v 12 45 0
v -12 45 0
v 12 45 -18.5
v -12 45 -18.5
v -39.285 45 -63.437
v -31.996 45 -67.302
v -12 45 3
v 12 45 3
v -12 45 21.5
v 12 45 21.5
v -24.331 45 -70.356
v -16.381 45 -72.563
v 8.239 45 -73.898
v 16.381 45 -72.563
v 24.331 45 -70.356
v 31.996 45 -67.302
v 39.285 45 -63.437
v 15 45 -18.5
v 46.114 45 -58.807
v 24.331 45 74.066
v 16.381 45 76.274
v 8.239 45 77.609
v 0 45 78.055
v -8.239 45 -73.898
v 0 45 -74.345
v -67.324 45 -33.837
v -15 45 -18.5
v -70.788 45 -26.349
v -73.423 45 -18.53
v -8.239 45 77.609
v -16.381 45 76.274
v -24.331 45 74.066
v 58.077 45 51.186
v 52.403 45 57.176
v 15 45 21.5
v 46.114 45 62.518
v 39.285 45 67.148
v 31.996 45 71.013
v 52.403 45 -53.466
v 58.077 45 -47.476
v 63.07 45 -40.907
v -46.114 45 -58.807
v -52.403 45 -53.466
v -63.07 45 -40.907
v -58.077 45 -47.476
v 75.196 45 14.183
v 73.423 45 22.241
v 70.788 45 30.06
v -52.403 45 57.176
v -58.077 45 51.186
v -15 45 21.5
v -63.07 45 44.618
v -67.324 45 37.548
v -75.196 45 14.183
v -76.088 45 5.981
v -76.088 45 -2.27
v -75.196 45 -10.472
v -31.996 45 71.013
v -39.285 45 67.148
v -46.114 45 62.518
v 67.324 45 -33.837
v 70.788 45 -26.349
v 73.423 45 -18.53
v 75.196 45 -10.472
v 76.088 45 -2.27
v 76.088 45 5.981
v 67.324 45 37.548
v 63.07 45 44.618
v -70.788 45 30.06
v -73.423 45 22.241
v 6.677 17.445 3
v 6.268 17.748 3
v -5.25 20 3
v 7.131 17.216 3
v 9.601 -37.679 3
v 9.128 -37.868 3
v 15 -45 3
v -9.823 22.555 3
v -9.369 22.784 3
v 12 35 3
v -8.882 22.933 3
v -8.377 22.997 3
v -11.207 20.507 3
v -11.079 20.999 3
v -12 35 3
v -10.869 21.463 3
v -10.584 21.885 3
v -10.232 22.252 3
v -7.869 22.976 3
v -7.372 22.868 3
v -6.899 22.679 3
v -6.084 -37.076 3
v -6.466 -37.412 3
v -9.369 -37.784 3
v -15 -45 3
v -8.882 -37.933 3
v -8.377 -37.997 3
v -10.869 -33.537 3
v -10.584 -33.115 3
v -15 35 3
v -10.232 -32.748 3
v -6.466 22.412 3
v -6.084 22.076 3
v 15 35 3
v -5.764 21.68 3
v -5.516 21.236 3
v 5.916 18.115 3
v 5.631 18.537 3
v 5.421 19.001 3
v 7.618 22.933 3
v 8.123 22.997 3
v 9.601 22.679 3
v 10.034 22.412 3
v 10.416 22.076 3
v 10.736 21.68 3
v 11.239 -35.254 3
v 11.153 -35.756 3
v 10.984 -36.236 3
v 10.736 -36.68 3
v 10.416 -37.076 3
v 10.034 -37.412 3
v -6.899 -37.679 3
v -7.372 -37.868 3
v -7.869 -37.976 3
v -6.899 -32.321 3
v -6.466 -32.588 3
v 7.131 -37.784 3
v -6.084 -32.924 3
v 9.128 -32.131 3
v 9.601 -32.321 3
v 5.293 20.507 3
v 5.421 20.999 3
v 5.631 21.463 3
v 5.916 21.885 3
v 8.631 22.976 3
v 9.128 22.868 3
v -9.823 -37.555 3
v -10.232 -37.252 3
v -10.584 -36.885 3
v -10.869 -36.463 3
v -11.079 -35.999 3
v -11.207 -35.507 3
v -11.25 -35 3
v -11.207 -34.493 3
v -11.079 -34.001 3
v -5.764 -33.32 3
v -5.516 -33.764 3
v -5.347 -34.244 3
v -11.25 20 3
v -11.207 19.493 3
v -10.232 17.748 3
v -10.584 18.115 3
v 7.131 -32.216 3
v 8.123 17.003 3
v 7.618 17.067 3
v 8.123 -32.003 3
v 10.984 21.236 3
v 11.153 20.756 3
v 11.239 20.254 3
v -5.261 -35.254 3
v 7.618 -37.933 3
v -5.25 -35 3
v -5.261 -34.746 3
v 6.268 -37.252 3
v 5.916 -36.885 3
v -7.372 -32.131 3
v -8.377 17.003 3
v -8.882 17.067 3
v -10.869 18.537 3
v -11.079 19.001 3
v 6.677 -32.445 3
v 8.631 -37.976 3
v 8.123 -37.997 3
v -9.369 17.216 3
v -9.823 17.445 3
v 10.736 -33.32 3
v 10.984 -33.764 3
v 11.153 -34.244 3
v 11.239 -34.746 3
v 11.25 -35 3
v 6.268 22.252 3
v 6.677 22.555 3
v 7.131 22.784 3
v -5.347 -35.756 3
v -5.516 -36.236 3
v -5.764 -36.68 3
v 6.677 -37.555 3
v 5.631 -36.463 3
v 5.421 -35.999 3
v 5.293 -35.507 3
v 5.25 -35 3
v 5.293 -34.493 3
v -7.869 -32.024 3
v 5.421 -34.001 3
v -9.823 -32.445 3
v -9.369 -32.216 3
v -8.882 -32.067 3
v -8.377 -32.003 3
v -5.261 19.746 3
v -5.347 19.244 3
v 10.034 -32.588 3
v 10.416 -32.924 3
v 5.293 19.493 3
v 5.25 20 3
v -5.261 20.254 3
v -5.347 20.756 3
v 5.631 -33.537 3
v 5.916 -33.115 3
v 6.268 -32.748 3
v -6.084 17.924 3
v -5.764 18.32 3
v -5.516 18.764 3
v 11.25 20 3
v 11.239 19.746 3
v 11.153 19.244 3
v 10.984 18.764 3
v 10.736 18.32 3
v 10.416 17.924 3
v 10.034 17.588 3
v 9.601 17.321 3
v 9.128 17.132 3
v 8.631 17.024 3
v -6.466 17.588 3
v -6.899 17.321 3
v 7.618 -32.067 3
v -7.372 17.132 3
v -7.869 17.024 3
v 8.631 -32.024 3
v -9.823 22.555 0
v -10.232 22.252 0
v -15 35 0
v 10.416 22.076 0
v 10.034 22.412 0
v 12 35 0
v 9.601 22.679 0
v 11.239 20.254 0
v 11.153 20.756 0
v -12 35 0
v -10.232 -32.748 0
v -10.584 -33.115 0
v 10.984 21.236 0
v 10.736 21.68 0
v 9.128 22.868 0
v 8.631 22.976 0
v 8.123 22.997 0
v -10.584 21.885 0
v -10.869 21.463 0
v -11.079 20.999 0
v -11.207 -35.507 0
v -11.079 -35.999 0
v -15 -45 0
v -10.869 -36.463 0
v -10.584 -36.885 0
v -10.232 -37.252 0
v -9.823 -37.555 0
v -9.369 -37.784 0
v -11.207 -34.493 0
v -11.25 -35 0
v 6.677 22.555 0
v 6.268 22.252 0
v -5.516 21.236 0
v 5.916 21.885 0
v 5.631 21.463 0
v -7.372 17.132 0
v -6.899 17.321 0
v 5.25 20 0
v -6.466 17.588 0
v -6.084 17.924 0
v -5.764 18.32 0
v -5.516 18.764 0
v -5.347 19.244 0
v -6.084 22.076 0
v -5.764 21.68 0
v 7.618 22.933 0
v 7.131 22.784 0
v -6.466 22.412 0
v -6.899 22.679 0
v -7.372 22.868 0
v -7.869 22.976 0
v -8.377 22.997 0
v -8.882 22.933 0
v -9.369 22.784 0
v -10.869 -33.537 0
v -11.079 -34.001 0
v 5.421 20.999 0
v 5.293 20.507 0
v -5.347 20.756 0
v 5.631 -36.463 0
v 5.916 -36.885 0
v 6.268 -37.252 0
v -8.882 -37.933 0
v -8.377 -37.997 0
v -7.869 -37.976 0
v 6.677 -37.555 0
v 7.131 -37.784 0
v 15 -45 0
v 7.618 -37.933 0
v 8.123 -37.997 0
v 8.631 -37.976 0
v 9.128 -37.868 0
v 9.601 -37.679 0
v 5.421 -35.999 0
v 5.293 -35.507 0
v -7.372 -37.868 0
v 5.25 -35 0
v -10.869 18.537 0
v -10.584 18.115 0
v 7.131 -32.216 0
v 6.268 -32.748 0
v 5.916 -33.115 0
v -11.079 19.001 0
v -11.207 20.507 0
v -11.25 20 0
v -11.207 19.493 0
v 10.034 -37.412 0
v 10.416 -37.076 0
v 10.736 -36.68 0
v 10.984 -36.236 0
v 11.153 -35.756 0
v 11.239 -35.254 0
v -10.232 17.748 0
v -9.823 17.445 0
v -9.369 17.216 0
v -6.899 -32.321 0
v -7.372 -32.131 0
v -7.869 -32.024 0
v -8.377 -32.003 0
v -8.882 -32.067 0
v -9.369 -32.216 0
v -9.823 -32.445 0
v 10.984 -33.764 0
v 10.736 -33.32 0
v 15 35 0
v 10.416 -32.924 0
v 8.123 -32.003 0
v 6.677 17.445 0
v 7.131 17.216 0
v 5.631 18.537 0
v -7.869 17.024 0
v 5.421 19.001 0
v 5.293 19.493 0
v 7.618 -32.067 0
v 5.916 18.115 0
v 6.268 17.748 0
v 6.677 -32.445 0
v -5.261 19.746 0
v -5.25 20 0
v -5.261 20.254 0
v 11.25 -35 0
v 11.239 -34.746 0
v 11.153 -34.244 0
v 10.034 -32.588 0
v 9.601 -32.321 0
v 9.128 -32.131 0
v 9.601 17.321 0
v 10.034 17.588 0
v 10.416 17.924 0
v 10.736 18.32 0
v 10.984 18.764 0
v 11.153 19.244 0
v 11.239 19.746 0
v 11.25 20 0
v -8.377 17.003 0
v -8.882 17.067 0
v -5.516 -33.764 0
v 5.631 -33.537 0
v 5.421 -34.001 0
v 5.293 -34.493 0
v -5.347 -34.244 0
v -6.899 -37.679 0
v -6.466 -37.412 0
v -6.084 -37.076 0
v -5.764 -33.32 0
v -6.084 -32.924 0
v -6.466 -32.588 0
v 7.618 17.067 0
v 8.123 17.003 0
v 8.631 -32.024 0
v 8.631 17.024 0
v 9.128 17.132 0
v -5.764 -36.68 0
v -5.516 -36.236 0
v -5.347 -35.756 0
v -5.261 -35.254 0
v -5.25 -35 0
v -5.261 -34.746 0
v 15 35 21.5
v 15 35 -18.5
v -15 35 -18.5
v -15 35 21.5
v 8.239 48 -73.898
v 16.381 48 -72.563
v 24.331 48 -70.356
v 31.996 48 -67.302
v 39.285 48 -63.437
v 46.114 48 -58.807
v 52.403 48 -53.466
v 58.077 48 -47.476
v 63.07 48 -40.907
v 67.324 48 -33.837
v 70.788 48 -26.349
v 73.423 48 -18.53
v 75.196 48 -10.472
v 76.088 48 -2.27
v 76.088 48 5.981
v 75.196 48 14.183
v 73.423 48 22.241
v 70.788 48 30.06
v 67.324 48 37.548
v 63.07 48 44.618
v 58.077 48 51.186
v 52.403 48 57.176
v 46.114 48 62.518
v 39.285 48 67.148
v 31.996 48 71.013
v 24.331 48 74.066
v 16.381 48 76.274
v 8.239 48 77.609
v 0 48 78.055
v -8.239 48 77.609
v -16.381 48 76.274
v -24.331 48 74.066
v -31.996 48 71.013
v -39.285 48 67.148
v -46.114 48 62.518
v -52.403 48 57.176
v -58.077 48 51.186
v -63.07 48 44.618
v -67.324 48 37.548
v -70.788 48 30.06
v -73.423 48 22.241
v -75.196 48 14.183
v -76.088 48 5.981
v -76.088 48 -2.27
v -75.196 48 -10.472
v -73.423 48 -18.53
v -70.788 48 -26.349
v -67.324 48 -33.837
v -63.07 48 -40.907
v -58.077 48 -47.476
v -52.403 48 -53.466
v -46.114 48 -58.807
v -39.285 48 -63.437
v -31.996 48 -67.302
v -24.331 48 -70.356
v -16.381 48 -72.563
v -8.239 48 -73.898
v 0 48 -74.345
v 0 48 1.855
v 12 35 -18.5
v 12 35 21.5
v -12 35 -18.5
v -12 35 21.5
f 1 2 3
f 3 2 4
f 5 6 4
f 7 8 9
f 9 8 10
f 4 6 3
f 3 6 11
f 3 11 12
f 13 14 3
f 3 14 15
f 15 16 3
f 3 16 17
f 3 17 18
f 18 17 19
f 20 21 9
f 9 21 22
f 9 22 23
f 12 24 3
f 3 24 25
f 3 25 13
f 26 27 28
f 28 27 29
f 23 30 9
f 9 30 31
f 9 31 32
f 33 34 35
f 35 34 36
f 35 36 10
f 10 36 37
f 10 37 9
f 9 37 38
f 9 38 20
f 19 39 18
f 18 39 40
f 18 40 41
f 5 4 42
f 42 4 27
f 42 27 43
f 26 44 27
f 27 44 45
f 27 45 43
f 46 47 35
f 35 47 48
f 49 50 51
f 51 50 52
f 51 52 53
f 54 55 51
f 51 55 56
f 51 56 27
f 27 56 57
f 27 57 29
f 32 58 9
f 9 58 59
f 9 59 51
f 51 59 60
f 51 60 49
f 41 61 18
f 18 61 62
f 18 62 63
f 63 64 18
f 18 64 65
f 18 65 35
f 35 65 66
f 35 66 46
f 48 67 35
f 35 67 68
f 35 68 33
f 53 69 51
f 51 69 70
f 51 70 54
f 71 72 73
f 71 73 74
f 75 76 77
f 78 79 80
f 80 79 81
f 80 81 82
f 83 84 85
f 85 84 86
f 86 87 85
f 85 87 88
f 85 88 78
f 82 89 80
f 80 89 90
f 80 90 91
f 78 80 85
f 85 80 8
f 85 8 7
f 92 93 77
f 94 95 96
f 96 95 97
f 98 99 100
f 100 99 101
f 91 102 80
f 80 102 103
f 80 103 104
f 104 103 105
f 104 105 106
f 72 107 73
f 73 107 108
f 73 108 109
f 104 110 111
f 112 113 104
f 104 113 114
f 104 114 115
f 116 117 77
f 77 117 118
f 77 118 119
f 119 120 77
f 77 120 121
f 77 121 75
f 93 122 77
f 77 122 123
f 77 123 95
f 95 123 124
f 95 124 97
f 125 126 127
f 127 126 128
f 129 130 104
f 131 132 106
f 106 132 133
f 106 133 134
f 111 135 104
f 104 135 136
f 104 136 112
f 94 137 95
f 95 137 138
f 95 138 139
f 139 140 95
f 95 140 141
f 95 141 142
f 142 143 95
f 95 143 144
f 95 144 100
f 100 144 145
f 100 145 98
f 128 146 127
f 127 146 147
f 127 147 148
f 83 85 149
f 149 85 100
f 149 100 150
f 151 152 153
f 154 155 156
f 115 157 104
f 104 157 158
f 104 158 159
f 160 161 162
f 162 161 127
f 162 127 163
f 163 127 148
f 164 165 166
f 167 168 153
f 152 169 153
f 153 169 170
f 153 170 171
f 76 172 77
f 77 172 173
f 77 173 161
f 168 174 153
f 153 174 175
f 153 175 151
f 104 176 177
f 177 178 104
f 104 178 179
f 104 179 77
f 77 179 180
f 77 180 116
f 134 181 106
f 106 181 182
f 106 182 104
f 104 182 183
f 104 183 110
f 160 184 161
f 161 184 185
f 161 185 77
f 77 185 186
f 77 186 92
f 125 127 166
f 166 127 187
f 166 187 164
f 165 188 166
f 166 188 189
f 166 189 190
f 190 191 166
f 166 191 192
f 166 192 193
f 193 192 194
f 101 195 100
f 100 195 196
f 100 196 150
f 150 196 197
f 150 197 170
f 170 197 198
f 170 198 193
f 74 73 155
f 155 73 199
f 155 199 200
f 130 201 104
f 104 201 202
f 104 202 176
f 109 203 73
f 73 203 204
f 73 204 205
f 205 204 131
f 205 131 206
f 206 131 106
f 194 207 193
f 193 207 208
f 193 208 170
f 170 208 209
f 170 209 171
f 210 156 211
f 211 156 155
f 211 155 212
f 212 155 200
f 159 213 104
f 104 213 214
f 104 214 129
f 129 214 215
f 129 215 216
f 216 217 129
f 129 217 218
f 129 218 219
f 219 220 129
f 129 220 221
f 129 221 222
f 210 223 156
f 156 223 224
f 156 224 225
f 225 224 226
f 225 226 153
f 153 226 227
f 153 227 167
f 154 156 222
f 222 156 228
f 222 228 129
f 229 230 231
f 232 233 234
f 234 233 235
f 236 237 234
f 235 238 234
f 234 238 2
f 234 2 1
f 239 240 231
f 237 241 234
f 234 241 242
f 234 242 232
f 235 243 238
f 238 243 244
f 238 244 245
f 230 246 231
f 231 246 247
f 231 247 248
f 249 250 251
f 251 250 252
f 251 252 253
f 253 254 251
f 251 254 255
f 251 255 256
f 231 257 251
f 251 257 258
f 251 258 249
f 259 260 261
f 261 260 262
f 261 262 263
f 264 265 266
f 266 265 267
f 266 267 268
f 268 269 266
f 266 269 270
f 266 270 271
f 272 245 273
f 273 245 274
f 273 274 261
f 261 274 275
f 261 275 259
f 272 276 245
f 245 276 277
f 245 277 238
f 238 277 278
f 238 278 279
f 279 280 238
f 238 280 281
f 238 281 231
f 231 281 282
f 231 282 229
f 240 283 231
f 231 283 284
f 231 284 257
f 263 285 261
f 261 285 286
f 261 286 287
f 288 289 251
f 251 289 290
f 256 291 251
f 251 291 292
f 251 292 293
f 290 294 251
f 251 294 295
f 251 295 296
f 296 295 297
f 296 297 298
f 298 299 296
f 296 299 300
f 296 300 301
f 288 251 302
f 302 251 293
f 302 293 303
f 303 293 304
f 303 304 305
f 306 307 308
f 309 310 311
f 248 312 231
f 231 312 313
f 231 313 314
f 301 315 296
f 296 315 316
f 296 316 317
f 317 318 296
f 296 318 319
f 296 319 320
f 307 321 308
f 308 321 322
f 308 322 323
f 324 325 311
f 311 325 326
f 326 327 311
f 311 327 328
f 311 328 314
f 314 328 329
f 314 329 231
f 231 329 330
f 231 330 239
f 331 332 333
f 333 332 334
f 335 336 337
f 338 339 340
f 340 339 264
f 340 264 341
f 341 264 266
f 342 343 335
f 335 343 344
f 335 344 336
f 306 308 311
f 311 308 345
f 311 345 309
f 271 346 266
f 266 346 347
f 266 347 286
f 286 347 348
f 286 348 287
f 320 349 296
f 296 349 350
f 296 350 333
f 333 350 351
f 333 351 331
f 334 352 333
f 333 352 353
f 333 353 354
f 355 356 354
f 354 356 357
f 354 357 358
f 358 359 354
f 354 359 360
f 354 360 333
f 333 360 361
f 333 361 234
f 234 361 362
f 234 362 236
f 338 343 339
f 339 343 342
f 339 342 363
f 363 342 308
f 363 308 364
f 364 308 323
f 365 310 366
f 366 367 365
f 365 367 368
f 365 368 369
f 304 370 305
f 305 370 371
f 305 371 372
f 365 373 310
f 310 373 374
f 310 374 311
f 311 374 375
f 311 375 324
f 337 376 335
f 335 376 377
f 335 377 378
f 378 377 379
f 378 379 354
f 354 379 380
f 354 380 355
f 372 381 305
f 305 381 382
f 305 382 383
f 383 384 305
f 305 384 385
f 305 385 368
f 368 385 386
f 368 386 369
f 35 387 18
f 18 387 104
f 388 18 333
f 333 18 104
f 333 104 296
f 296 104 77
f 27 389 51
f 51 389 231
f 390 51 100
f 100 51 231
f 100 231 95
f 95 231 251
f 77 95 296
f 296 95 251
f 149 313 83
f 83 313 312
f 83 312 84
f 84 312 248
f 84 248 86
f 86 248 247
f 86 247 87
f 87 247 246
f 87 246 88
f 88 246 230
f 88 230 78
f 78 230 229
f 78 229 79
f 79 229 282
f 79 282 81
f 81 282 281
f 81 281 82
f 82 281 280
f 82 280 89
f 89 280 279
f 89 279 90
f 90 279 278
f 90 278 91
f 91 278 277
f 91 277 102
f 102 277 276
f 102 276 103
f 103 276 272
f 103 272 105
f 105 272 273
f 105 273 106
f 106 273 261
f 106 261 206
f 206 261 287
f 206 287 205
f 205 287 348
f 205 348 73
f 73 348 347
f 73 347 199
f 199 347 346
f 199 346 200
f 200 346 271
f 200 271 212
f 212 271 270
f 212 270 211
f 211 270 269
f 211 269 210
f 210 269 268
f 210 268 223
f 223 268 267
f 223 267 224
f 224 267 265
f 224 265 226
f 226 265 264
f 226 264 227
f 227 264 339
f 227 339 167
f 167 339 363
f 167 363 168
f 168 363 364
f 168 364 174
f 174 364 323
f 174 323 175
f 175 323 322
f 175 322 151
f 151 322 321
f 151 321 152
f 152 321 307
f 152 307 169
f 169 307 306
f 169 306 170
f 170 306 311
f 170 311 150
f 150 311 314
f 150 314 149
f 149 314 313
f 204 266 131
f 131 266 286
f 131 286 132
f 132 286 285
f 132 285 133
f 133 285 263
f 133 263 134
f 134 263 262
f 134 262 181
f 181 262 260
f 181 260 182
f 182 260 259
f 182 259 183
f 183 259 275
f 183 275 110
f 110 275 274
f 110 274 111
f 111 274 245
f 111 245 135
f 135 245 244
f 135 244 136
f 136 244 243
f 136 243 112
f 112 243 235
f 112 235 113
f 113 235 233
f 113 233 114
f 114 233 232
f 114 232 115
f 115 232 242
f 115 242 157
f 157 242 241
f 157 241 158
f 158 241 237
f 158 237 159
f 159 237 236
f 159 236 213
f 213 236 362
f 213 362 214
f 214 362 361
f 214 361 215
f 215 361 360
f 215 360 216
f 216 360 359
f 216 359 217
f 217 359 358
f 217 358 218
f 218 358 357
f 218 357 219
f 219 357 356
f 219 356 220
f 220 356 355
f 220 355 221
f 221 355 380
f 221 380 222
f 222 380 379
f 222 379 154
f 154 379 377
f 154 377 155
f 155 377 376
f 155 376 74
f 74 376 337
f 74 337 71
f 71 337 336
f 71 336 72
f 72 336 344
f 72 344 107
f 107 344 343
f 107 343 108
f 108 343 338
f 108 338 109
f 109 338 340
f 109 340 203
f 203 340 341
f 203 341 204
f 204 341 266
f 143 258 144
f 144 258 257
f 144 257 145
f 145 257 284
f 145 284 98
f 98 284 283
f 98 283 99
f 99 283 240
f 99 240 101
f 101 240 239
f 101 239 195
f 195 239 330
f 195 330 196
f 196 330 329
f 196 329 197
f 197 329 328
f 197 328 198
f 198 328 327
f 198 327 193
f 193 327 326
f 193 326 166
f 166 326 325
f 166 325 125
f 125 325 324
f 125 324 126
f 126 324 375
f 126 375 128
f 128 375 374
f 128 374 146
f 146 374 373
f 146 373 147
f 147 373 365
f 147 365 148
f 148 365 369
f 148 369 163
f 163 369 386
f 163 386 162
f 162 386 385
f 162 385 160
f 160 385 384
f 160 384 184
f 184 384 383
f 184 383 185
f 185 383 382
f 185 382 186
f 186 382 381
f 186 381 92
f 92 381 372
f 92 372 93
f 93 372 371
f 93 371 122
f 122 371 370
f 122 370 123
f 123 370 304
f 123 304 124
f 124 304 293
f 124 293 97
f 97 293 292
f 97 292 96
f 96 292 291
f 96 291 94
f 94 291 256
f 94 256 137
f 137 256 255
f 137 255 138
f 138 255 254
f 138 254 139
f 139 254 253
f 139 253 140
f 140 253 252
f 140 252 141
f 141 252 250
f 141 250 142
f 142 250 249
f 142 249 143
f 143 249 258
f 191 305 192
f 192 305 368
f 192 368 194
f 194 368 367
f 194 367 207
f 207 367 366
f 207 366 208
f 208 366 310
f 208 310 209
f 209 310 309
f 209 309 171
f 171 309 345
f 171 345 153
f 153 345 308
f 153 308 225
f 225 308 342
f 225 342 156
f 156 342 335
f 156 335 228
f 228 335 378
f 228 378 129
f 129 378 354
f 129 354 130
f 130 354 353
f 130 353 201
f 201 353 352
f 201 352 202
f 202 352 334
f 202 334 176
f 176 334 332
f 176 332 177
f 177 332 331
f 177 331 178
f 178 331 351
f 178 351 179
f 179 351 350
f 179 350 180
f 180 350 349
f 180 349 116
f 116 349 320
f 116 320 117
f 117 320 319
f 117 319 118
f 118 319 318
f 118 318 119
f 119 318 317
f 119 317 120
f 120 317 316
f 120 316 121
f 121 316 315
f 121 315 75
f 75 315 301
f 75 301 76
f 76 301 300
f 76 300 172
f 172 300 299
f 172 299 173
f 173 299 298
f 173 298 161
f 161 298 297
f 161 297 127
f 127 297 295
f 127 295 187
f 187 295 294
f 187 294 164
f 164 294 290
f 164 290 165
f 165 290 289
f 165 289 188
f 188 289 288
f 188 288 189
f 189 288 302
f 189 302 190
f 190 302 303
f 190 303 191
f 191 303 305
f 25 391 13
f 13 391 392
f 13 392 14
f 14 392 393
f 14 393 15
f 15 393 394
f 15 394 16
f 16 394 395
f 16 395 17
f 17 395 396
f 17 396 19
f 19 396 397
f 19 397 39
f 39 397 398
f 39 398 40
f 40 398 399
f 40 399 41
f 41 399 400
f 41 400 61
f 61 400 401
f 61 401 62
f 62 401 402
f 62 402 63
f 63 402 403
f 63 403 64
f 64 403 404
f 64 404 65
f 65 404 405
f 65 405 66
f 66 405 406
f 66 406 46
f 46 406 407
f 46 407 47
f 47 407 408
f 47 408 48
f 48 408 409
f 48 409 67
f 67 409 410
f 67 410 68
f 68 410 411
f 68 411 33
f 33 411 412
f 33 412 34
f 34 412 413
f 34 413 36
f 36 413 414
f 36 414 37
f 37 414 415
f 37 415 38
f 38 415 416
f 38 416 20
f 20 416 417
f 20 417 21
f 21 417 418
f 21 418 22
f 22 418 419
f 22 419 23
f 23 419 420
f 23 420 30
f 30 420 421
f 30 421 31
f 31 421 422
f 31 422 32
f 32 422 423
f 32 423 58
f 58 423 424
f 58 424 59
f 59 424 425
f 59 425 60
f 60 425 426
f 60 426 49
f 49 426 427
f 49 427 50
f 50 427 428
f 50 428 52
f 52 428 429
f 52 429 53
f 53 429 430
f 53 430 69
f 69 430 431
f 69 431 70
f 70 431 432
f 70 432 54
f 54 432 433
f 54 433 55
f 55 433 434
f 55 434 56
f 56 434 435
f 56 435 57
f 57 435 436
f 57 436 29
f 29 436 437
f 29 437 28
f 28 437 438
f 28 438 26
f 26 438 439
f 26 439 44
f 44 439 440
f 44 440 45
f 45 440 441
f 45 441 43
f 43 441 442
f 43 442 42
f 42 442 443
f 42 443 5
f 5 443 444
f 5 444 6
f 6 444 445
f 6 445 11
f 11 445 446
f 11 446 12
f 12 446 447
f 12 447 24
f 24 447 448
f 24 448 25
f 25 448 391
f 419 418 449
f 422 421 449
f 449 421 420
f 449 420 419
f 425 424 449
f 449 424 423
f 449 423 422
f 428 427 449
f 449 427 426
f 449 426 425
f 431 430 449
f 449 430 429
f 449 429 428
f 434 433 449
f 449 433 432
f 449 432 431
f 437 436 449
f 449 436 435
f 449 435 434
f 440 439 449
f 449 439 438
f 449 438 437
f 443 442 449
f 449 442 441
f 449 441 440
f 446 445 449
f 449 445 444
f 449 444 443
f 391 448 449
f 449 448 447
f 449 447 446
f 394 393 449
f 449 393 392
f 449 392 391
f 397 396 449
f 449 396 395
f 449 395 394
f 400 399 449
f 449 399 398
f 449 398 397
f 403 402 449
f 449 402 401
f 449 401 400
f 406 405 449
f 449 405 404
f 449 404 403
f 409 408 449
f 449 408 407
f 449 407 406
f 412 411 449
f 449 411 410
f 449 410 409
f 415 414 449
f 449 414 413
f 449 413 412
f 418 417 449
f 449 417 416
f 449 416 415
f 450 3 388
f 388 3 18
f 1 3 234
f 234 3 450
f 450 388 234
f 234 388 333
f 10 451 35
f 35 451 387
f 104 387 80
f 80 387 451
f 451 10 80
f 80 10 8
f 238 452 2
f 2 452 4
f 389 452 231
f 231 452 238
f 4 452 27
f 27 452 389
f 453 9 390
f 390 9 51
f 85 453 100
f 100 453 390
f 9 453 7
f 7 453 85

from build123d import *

# Parameters (mm, degrees)
SKETCH2_W           = 30
SKETCH2_H           = 90
SKETCH2_R           = 3
BOSS_EXTRUDE1_DEPTH = 3
SKETCH3_R           = 76.2
BOSS_EXTRUDE2_DEPTH = 3
SKETCH4_W           = 40
SKETCH4_H           = 10
BOSS_EXTRUDE3_DEPTH = 3
SKETCH5_W           = 40
SKETCH5_H           = 10
BOSS_EXTRUDE4_DEPTH = 3


with BuildPart() as part:
    # Sketch2 → Boss-Extrude1 (new body)
    with BuildSketch(Plane.XY):
        Rectangle(SKETCH2_W, SKETCH2_H)
        with Locations((-8.25, 20)):
            Circle(SKETCH2_R, mode=Mode.SUBTRACT)
        with Locations((8.25, 20)):
            Circle(SKETCH2_R, mode=Mode.SUBTRACT)
        with Locations((-8.25, -35)):
            Circle(SKETCH2_R, mode=Mode.SUBTRACT)
        with Locations((8.25, -35)):
            Circle(SKETCH2_R, mode=Mode.SUBTRACT)
    extrude(amount=BOSS_EXTRUDE1_DEPTH)

    # Sketch3 → Boss-Extrude2 (add)
    with BuildSketch(Plane(origin=(0, 45, 0), x_dir=(1, 0, 0), z_dir=(0, 1, 0))):
        with Locations(Location((0, -1.855318654, 0), (0, 0, 270))):
            Circle(SKETCH3_R)
    extrude(amount=BOSS_EXTRUDE2_DEPTH)

    # Sketch4 → Boss-Extrude3 (add)
    with BuildSketch(Plane(origin=(15, 0, 0), x_dir=(0, 0, -1), z_dir=(1, 0, 0))):
        with Locations((-1.5, 40)):
            Rectangle(SKETCH4_W, SKETCH4_H)
    extrude(amount=-BOSS_EXTRUDE3_DEPTH)

    # Sketch5 → Boss-Extrude4 (add)
    with BuildSketch(Plane.ZY.offset(15)):
        with Locations((1.5, 40)):
            Rectangle(SKETCH5_W, SKETCH5_H)
    extrude(amount=-BOSS_EXTRUDE4_DEPTH)


solid = part.part
